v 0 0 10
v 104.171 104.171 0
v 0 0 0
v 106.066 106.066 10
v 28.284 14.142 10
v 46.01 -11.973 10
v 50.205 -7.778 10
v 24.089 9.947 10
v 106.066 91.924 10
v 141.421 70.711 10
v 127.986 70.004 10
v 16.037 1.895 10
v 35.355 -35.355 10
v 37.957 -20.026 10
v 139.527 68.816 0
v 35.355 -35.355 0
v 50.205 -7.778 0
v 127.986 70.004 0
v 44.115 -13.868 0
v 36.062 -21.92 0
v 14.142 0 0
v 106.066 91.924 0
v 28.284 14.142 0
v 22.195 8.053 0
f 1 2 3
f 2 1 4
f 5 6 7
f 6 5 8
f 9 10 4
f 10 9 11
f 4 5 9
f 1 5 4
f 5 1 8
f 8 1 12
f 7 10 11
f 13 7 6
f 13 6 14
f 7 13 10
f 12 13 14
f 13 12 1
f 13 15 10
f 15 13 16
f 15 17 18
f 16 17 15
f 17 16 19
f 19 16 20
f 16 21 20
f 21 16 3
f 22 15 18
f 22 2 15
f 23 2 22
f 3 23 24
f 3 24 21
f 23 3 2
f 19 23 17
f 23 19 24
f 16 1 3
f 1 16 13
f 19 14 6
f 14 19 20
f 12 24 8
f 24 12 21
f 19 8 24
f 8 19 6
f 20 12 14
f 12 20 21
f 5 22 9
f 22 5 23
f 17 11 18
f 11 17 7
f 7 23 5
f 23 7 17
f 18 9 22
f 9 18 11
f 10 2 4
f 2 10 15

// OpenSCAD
// file: constants.scad
$fn = 20;

width = 30;
base_length = 150;
finger_length = 50;
thickness_part = 10;
gap_part = 1;
// zenbook
thickness_pc = 10;
finger_angle = 45;
// macbook pro
//thickness_pc = 15;
//finger_angle = 45;
// let's note
// thickness_pc = 10;
// finger_angle = 65;

gap_y = (thickness_pc+thickness_part)/sin(finger_angle);
foot_inclination = 15
// main file
include <constants.scad>;

rotate([0, 0, -45]) {
     difference() {
          cube([width+thickness_part*2, base_length, thickness_part]);
          translate([thickness_part, thickness_part, 0]) {
               rotate([-foot_inclination, 0, 0]) {
                    cube([width+gap_part, thickness_part+gap_part, thickness_part*2]);
               }
          }
          translate([thickness_part, thickness_part*3, 0]) {
               cube([width+gap_part, base_length-thickness_part*4, thickness_part]);
          }
          translate([0, base_length-thickness_part/tan(90-foot_inclination), 0]) {
               rotate([-foot_inclination, 0, 0]) {
                    cube([width+thickness_part*2, thickness_part, thickness_part*2]);
               }
          }
     }
}
